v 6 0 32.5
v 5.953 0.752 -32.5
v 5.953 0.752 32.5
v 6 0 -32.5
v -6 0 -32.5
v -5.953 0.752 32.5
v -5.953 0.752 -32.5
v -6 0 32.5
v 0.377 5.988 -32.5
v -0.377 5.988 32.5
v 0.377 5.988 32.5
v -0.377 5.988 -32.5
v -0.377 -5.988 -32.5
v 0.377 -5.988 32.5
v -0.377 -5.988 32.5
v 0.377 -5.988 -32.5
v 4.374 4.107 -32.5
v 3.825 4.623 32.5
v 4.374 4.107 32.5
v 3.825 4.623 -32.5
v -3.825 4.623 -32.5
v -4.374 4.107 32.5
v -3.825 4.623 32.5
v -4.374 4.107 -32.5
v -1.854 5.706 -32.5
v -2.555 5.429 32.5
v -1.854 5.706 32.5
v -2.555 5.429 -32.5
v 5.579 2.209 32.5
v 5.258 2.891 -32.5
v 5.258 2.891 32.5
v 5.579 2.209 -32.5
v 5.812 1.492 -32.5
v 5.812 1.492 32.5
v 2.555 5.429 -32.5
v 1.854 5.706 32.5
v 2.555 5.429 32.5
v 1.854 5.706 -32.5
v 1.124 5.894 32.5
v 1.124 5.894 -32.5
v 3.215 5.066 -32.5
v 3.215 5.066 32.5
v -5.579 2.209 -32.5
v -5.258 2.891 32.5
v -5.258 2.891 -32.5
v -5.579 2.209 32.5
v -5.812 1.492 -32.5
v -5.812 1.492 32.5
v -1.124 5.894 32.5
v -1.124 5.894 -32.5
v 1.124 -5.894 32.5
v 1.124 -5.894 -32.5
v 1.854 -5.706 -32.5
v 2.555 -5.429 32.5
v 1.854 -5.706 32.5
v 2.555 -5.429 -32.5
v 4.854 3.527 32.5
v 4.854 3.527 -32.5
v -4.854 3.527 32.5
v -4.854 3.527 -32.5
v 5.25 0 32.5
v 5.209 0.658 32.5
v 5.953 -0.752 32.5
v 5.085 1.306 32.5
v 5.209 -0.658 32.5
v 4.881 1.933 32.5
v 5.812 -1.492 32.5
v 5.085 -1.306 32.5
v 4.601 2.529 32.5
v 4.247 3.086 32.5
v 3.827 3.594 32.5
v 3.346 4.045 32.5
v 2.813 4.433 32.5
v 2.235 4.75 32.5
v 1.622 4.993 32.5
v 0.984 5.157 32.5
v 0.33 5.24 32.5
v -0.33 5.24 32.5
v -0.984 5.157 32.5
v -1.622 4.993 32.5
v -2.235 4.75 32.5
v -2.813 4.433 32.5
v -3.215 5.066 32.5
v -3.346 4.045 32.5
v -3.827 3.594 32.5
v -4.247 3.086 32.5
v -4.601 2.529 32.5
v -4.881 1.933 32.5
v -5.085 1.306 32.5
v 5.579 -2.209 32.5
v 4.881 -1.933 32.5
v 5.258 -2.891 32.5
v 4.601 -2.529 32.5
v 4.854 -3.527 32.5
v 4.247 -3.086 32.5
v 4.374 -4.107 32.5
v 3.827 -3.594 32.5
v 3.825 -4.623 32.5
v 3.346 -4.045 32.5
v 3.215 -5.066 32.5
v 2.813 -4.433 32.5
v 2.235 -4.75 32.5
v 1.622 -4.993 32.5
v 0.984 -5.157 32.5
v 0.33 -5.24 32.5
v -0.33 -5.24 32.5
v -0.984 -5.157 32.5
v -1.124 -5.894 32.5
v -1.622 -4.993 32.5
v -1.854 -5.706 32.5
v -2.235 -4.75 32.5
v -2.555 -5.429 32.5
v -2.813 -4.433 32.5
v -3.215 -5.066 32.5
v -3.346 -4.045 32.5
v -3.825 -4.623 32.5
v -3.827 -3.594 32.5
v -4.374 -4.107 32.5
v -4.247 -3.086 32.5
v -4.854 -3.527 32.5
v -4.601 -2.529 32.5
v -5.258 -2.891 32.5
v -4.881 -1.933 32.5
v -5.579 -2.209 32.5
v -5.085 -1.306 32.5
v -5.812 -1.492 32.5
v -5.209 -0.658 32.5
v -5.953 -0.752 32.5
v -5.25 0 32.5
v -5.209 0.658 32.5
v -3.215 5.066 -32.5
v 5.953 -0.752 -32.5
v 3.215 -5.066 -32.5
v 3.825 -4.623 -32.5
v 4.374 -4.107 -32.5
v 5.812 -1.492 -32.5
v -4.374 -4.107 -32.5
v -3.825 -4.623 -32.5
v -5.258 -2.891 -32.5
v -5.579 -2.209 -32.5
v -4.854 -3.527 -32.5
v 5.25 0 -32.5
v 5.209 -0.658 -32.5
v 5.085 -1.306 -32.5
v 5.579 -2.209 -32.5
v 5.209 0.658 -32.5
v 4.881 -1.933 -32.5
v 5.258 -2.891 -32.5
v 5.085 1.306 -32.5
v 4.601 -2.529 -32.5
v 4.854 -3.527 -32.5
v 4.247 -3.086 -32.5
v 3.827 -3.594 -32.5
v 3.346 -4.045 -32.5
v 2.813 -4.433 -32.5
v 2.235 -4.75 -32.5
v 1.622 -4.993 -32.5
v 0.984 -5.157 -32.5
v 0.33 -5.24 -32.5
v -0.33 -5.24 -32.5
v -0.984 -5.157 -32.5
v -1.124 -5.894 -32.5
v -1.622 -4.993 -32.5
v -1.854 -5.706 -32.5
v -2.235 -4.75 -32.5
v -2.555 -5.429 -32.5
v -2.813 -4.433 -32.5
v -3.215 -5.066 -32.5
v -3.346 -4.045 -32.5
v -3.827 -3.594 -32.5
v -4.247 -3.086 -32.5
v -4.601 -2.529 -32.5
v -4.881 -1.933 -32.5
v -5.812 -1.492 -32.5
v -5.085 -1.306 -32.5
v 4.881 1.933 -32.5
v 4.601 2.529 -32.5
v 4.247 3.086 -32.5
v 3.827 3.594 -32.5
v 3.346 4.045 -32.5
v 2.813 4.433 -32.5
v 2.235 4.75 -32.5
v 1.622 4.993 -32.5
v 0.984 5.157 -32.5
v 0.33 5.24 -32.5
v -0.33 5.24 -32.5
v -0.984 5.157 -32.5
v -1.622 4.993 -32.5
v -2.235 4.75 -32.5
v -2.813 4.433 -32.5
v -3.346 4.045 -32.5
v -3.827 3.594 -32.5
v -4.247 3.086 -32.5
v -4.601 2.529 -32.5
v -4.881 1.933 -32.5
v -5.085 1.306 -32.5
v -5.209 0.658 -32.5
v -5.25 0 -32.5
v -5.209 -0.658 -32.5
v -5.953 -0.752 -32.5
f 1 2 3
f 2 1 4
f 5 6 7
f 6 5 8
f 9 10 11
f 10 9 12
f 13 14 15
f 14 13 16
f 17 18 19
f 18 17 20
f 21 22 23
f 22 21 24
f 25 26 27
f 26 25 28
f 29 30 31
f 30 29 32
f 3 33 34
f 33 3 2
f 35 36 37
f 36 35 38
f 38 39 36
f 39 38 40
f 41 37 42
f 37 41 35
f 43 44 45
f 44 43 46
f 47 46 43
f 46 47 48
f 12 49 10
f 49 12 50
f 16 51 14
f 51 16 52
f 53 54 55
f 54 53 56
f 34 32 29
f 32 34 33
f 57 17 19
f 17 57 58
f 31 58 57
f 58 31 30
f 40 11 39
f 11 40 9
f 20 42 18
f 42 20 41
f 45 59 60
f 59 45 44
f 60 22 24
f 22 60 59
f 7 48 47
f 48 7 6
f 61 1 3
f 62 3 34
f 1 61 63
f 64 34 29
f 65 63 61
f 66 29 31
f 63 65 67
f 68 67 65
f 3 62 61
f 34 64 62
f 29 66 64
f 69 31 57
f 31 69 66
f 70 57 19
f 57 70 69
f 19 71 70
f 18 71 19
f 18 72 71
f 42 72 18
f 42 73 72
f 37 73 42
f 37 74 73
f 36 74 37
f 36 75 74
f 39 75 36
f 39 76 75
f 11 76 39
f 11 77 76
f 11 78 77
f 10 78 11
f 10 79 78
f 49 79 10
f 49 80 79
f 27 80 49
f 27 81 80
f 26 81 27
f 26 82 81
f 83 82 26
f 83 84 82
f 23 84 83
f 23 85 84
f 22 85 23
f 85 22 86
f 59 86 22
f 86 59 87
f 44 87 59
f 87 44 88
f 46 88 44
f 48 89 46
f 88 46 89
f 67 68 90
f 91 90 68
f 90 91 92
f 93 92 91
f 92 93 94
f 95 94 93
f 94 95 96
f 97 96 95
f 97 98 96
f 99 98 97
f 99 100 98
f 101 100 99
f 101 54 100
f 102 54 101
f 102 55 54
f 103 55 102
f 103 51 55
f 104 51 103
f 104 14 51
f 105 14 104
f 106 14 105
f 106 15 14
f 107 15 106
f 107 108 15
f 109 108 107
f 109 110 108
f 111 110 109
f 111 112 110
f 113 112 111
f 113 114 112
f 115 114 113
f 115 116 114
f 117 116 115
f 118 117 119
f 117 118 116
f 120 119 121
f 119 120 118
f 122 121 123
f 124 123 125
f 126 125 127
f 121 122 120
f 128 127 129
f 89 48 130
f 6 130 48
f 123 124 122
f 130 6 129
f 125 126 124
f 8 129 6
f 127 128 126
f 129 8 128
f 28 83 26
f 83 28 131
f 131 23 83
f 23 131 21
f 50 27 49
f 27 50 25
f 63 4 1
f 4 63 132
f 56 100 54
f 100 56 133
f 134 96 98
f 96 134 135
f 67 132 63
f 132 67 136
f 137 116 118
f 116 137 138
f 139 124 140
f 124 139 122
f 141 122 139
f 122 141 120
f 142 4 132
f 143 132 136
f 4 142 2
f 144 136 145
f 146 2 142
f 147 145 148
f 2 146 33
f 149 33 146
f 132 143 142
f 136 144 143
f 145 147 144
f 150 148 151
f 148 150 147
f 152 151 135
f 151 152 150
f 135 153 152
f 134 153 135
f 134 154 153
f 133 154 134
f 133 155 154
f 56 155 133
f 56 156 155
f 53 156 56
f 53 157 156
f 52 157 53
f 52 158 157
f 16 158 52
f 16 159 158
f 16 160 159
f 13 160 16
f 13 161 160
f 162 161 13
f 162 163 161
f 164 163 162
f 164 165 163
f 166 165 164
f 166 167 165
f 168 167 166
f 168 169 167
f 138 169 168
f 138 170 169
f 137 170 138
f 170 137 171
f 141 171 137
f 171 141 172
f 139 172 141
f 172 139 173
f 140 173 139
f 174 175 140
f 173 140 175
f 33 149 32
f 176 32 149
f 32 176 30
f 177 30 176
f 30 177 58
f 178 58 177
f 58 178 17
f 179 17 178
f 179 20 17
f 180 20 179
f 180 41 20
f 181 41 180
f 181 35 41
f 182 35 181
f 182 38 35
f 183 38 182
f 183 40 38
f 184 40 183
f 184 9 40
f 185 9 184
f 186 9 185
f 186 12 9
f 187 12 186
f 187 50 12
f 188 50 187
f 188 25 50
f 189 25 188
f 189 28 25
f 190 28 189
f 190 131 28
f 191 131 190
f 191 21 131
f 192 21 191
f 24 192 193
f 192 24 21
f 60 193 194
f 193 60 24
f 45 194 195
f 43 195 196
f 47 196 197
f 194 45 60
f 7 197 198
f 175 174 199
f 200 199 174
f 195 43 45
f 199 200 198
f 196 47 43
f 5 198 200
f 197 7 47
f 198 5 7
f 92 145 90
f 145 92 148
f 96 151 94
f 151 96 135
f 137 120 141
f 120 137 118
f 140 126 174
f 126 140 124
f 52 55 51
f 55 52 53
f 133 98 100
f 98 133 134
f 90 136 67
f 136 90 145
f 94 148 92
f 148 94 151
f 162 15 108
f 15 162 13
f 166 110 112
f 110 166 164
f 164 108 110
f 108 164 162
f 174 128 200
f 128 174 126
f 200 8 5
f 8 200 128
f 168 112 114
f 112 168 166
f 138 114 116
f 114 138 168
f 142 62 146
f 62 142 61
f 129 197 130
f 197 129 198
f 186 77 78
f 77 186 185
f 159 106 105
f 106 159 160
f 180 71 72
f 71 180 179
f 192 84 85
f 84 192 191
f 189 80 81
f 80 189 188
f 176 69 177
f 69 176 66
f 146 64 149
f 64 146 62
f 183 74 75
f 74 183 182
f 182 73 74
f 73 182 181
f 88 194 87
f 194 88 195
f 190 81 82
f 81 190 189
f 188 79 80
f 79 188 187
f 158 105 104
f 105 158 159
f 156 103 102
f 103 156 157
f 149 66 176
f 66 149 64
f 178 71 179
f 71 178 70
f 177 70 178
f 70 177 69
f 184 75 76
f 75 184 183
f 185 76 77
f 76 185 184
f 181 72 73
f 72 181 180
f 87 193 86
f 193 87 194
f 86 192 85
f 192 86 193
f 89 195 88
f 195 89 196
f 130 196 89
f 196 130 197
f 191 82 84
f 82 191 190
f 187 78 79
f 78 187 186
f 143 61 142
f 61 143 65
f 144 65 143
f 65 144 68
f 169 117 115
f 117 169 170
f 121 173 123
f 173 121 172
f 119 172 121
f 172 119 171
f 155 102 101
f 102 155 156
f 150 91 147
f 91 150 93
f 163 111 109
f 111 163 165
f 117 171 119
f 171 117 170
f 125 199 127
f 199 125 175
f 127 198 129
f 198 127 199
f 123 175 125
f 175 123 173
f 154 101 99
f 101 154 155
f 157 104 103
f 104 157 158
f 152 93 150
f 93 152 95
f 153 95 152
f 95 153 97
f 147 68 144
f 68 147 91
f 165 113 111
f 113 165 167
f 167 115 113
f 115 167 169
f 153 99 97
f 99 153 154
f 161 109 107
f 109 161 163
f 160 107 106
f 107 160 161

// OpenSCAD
$fn = 50;


difference() {
	union() {
		translate(v = [0, 0, -32.5000000000]) {
			cylinder(h = 65, r = 6.0000000000);
		}
	}
	union() {
		translate(v = [0, 0, -100.0000000000]) {
			cylinder(h = 200, r = 5.2500000000);
		}
	}
}
